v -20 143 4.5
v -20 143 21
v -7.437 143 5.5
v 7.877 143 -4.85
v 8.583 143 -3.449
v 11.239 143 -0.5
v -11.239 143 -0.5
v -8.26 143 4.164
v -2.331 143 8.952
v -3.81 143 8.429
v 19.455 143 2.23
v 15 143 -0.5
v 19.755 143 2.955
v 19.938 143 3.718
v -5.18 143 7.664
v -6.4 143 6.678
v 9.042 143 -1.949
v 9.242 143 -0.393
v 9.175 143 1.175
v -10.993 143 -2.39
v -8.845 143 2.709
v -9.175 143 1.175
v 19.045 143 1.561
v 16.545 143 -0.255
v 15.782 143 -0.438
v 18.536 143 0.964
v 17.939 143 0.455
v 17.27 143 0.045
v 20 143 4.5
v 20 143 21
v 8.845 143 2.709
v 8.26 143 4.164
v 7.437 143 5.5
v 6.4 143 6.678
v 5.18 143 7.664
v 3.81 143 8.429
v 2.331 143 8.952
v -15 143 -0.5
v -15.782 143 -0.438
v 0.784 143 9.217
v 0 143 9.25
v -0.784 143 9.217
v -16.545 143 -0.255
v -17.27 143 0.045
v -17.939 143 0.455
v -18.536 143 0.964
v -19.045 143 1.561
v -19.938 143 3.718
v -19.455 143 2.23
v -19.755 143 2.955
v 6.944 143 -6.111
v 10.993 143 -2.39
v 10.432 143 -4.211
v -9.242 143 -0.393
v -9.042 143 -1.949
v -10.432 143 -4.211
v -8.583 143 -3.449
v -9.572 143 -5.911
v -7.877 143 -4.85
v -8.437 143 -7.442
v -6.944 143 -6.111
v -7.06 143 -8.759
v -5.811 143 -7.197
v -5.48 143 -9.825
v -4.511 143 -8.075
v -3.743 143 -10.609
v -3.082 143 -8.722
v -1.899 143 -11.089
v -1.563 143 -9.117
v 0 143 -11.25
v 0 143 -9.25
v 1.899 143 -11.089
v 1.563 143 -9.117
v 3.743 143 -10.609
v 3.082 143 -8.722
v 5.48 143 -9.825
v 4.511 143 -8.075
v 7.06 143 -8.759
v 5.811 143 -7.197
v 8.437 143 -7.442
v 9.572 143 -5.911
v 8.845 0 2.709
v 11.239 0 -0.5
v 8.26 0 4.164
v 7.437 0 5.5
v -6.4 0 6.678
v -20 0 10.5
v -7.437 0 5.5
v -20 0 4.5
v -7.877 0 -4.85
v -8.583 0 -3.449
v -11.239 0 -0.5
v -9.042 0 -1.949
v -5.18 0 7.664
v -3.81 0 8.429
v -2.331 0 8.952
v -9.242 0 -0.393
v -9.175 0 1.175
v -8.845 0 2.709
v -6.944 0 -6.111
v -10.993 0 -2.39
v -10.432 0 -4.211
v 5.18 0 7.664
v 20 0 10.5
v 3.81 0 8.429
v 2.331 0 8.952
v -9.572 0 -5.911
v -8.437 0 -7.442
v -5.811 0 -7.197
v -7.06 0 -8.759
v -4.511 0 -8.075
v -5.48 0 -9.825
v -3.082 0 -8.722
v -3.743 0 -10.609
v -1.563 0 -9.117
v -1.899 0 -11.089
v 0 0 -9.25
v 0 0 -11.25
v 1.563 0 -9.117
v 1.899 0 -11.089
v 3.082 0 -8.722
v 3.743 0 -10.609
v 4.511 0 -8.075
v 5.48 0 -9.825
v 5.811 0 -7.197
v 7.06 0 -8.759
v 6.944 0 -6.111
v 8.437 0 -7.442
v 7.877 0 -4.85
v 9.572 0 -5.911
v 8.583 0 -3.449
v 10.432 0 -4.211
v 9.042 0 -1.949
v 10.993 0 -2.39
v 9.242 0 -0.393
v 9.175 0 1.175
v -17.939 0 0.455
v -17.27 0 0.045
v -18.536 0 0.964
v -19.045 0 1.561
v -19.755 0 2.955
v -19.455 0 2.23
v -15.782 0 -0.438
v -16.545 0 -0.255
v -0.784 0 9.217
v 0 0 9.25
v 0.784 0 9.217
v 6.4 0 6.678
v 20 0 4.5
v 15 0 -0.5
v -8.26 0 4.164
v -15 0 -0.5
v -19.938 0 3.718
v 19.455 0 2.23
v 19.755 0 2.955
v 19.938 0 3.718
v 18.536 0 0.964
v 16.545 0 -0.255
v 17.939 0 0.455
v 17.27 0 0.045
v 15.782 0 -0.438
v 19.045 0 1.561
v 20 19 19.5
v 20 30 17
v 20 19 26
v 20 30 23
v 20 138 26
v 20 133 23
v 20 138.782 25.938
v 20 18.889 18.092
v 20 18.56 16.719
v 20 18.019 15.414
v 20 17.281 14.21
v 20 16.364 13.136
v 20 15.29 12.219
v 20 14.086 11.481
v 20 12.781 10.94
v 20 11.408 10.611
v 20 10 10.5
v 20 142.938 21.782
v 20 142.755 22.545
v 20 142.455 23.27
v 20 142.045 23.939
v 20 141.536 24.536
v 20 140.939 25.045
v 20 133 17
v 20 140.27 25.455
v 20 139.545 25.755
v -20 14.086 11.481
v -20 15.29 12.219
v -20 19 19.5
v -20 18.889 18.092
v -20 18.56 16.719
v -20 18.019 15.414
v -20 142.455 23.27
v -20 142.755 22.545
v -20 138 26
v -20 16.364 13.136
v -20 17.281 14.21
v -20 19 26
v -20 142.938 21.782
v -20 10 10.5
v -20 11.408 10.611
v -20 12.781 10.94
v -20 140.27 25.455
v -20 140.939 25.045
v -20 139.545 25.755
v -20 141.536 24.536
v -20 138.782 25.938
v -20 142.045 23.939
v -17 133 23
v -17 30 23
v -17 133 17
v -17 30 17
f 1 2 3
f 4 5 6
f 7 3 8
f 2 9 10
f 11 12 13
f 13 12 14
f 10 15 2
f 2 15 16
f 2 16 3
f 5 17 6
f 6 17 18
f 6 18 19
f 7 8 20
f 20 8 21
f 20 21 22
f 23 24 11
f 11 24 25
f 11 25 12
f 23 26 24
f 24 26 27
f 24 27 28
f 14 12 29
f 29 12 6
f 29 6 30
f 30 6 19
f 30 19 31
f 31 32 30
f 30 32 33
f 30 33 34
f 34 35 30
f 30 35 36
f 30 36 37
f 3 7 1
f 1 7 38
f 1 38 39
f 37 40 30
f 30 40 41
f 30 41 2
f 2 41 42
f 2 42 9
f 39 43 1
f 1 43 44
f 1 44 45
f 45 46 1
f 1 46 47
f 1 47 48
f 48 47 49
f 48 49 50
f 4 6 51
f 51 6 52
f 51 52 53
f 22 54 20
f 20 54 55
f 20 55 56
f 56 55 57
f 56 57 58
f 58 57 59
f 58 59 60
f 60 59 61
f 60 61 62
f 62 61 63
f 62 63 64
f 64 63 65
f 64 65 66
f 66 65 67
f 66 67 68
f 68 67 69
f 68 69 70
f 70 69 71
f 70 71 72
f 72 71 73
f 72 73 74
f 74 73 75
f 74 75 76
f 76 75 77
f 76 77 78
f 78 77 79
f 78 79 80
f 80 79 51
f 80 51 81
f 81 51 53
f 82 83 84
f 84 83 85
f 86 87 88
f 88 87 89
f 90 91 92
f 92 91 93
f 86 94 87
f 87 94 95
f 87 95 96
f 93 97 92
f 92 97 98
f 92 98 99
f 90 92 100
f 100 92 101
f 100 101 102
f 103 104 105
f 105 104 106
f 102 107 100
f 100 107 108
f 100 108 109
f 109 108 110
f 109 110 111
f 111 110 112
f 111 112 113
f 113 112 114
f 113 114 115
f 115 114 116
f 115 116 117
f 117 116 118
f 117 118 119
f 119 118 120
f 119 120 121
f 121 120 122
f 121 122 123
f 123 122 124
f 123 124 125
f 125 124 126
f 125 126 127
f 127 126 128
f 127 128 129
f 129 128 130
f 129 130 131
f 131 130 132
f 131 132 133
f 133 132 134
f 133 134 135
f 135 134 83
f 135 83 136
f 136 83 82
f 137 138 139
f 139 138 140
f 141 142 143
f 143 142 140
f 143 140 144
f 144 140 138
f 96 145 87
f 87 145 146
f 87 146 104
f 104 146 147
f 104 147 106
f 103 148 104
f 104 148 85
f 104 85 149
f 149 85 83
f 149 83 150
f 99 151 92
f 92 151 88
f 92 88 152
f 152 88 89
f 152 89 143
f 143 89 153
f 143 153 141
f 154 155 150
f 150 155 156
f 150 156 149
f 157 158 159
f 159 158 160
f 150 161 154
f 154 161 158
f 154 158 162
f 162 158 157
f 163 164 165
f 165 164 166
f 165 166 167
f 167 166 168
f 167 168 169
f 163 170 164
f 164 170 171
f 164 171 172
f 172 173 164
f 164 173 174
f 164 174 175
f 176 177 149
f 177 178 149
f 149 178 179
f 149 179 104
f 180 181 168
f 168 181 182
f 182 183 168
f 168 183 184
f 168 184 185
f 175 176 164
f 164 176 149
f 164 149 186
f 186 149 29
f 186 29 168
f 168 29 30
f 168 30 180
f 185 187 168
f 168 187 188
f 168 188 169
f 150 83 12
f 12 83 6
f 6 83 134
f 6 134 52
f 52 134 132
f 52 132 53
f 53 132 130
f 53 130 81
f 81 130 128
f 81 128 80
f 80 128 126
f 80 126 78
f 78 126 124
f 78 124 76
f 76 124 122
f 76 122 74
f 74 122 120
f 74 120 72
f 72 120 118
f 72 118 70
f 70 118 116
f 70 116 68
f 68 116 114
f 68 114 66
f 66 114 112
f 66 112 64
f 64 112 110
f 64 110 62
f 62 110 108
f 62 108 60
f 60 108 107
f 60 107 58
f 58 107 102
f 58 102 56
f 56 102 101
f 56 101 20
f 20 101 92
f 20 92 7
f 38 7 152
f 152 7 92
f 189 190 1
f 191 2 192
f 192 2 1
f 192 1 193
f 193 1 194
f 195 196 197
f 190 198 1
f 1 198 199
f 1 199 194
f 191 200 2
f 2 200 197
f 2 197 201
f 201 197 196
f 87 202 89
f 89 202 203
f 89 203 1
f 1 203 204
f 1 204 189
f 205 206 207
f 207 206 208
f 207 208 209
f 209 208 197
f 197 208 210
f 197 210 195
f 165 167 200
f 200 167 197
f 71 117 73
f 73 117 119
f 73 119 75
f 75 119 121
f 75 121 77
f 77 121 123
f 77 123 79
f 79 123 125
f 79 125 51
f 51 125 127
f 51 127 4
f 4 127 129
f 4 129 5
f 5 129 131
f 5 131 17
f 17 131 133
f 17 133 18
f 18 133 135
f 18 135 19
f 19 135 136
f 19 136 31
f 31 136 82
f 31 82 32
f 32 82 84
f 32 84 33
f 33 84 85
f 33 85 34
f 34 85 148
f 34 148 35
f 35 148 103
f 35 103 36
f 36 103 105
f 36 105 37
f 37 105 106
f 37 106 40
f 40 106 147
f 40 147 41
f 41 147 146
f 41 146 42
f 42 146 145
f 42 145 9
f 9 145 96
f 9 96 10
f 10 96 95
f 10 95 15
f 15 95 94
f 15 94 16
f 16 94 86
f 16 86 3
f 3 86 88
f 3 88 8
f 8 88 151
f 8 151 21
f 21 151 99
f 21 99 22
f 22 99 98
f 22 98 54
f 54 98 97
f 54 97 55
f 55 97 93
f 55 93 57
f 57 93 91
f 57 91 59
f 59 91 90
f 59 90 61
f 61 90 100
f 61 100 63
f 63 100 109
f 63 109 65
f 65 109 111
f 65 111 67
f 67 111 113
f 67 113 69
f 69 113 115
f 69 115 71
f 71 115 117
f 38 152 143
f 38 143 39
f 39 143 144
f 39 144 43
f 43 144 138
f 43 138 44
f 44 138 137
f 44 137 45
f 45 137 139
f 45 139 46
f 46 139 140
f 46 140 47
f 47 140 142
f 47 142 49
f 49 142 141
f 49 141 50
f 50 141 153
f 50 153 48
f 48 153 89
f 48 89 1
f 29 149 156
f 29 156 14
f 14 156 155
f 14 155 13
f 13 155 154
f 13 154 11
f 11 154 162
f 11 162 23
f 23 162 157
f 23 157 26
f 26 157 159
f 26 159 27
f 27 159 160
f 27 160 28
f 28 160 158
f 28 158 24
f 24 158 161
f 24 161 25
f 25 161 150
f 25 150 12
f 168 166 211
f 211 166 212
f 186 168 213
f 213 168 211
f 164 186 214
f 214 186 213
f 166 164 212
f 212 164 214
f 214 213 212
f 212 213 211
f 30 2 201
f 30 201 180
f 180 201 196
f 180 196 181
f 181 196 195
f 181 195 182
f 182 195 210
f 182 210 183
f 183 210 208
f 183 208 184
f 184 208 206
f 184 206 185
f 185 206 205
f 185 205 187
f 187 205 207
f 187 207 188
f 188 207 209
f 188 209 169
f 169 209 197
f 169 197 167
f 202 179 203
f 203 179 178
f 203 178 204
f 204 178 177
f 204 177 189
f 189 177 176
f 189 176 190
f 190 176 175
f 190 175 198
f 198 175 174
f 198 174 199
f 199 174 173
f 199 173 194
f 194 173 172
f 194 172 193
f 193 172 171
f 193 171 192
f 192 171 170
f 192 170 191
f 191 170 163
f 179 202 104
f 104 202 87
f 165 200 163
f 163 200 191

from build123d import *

# Parameters (mm, degrees)
SKETCH1_R           = 9.25
BOSS_EXTRUDE1_DEPTH = 143
FILLET2_R           = 5
SKETCH2_W           = 6
SKETCH2_H           = 103
CUT_EXTRUDE1_DEPTH  = 37
FILLET3_R           = 5
CUT_EXTRUDE2_DEPTH  = 53


with BuildPart() as part:
    # Sketch1 → Boss-Extrude1 (new body)
    with BuildSketch(Plane(origin=(0, 0, 0), x_dir=(1, 0, 0), z_dir=(0, 1, 0))):
        with BuildLine():
            Line((0, -26), (-20, -26))
            Line((-20, -26), (-20, -4.5))
            Line((-20, -4.5), (-20, -2.5))
            Line((-20, -2.5), (-20, 0.5))
            Line((-20, 0.5), (-17, 0.5))
            Line((-17, 0.5), (-11.238883396, 0.5))
            ThreePointArc((-11.238883396, 0.5), (0, 11.25), (11.238883396, 0.5))
            Line((11.238883396, 0.5), (17, 0.5))
            Line((17, 0.5), (20, 0.5))
            Line((20, 0.5), (20, -2.5))
            Line((20, -2.5), (20, -4.5))
            Line((20, -4.5), (20, -26))
            Line((20, -26), (0, -26))
        make_face()
        Circle(SKETCH1_R, mode=Mode.SUBTRACT)
    extrude(amount=BOSS_EXTRUDE1_DEPTH)

    # Fillet2
    fillet2_edges = [part.edges().sort_by_distance(p)[0] for p in [
        (-20, 71.5, -0.5),
        (20, 71.5, -0.5),
    ]]
    fillet(fillet2_edges, radius=FILLET2_R)

    # Sketch2 → Cut-Extrude1 (cut)
    with BuildSketch(Plane(origin=(20, 0, 0), x_dir=(0, 0, -1), z_dir=(1, 0, 0))):
        with Locations((-20, 81.5)):
            Rectangle(SKETCH2_W, SKETCH2_H)
    extrude(amount=-CUT_EXTRUDE1_DEPTH, mode=Mode.SUBTRACT)

    # Fillet3
    fillet3_edges = [part.edges().sort_by_distance(p)[0] for p in [
        (0, 0, 26),
        (0, 143, 26),
    ]]
    fillet(fillet3_edges, radius=FILLET3_R)

    # Sketch3 → Cut-Extrude2 (cut)
    with BuildSketch(Plane(origin=(20, 0, 0), x_dir=(0, 0, -1), z_dir=(1, 0, 0))):
        with BuildLine():
            Line((-10.5, 0), (-10.5, 10))
            ThreePointArc((-10.5, 10), (-13.136038969, 16.363961031), (-19.5, 19))
            Line((-19.5, 19), (-26, 19))
            Line((-26, 19), (-26, 5))
            ThreePointArc((-26, 5), (-24.535533906, 1.464466094), (-21, 0))
            Line((-21, 0), (-10.5, 0))
        make_face()
    extrude(amount=-CUT_EXTRUDE2_DEPTH, mode=Mode.SUBTRACT)


solid = part.part
